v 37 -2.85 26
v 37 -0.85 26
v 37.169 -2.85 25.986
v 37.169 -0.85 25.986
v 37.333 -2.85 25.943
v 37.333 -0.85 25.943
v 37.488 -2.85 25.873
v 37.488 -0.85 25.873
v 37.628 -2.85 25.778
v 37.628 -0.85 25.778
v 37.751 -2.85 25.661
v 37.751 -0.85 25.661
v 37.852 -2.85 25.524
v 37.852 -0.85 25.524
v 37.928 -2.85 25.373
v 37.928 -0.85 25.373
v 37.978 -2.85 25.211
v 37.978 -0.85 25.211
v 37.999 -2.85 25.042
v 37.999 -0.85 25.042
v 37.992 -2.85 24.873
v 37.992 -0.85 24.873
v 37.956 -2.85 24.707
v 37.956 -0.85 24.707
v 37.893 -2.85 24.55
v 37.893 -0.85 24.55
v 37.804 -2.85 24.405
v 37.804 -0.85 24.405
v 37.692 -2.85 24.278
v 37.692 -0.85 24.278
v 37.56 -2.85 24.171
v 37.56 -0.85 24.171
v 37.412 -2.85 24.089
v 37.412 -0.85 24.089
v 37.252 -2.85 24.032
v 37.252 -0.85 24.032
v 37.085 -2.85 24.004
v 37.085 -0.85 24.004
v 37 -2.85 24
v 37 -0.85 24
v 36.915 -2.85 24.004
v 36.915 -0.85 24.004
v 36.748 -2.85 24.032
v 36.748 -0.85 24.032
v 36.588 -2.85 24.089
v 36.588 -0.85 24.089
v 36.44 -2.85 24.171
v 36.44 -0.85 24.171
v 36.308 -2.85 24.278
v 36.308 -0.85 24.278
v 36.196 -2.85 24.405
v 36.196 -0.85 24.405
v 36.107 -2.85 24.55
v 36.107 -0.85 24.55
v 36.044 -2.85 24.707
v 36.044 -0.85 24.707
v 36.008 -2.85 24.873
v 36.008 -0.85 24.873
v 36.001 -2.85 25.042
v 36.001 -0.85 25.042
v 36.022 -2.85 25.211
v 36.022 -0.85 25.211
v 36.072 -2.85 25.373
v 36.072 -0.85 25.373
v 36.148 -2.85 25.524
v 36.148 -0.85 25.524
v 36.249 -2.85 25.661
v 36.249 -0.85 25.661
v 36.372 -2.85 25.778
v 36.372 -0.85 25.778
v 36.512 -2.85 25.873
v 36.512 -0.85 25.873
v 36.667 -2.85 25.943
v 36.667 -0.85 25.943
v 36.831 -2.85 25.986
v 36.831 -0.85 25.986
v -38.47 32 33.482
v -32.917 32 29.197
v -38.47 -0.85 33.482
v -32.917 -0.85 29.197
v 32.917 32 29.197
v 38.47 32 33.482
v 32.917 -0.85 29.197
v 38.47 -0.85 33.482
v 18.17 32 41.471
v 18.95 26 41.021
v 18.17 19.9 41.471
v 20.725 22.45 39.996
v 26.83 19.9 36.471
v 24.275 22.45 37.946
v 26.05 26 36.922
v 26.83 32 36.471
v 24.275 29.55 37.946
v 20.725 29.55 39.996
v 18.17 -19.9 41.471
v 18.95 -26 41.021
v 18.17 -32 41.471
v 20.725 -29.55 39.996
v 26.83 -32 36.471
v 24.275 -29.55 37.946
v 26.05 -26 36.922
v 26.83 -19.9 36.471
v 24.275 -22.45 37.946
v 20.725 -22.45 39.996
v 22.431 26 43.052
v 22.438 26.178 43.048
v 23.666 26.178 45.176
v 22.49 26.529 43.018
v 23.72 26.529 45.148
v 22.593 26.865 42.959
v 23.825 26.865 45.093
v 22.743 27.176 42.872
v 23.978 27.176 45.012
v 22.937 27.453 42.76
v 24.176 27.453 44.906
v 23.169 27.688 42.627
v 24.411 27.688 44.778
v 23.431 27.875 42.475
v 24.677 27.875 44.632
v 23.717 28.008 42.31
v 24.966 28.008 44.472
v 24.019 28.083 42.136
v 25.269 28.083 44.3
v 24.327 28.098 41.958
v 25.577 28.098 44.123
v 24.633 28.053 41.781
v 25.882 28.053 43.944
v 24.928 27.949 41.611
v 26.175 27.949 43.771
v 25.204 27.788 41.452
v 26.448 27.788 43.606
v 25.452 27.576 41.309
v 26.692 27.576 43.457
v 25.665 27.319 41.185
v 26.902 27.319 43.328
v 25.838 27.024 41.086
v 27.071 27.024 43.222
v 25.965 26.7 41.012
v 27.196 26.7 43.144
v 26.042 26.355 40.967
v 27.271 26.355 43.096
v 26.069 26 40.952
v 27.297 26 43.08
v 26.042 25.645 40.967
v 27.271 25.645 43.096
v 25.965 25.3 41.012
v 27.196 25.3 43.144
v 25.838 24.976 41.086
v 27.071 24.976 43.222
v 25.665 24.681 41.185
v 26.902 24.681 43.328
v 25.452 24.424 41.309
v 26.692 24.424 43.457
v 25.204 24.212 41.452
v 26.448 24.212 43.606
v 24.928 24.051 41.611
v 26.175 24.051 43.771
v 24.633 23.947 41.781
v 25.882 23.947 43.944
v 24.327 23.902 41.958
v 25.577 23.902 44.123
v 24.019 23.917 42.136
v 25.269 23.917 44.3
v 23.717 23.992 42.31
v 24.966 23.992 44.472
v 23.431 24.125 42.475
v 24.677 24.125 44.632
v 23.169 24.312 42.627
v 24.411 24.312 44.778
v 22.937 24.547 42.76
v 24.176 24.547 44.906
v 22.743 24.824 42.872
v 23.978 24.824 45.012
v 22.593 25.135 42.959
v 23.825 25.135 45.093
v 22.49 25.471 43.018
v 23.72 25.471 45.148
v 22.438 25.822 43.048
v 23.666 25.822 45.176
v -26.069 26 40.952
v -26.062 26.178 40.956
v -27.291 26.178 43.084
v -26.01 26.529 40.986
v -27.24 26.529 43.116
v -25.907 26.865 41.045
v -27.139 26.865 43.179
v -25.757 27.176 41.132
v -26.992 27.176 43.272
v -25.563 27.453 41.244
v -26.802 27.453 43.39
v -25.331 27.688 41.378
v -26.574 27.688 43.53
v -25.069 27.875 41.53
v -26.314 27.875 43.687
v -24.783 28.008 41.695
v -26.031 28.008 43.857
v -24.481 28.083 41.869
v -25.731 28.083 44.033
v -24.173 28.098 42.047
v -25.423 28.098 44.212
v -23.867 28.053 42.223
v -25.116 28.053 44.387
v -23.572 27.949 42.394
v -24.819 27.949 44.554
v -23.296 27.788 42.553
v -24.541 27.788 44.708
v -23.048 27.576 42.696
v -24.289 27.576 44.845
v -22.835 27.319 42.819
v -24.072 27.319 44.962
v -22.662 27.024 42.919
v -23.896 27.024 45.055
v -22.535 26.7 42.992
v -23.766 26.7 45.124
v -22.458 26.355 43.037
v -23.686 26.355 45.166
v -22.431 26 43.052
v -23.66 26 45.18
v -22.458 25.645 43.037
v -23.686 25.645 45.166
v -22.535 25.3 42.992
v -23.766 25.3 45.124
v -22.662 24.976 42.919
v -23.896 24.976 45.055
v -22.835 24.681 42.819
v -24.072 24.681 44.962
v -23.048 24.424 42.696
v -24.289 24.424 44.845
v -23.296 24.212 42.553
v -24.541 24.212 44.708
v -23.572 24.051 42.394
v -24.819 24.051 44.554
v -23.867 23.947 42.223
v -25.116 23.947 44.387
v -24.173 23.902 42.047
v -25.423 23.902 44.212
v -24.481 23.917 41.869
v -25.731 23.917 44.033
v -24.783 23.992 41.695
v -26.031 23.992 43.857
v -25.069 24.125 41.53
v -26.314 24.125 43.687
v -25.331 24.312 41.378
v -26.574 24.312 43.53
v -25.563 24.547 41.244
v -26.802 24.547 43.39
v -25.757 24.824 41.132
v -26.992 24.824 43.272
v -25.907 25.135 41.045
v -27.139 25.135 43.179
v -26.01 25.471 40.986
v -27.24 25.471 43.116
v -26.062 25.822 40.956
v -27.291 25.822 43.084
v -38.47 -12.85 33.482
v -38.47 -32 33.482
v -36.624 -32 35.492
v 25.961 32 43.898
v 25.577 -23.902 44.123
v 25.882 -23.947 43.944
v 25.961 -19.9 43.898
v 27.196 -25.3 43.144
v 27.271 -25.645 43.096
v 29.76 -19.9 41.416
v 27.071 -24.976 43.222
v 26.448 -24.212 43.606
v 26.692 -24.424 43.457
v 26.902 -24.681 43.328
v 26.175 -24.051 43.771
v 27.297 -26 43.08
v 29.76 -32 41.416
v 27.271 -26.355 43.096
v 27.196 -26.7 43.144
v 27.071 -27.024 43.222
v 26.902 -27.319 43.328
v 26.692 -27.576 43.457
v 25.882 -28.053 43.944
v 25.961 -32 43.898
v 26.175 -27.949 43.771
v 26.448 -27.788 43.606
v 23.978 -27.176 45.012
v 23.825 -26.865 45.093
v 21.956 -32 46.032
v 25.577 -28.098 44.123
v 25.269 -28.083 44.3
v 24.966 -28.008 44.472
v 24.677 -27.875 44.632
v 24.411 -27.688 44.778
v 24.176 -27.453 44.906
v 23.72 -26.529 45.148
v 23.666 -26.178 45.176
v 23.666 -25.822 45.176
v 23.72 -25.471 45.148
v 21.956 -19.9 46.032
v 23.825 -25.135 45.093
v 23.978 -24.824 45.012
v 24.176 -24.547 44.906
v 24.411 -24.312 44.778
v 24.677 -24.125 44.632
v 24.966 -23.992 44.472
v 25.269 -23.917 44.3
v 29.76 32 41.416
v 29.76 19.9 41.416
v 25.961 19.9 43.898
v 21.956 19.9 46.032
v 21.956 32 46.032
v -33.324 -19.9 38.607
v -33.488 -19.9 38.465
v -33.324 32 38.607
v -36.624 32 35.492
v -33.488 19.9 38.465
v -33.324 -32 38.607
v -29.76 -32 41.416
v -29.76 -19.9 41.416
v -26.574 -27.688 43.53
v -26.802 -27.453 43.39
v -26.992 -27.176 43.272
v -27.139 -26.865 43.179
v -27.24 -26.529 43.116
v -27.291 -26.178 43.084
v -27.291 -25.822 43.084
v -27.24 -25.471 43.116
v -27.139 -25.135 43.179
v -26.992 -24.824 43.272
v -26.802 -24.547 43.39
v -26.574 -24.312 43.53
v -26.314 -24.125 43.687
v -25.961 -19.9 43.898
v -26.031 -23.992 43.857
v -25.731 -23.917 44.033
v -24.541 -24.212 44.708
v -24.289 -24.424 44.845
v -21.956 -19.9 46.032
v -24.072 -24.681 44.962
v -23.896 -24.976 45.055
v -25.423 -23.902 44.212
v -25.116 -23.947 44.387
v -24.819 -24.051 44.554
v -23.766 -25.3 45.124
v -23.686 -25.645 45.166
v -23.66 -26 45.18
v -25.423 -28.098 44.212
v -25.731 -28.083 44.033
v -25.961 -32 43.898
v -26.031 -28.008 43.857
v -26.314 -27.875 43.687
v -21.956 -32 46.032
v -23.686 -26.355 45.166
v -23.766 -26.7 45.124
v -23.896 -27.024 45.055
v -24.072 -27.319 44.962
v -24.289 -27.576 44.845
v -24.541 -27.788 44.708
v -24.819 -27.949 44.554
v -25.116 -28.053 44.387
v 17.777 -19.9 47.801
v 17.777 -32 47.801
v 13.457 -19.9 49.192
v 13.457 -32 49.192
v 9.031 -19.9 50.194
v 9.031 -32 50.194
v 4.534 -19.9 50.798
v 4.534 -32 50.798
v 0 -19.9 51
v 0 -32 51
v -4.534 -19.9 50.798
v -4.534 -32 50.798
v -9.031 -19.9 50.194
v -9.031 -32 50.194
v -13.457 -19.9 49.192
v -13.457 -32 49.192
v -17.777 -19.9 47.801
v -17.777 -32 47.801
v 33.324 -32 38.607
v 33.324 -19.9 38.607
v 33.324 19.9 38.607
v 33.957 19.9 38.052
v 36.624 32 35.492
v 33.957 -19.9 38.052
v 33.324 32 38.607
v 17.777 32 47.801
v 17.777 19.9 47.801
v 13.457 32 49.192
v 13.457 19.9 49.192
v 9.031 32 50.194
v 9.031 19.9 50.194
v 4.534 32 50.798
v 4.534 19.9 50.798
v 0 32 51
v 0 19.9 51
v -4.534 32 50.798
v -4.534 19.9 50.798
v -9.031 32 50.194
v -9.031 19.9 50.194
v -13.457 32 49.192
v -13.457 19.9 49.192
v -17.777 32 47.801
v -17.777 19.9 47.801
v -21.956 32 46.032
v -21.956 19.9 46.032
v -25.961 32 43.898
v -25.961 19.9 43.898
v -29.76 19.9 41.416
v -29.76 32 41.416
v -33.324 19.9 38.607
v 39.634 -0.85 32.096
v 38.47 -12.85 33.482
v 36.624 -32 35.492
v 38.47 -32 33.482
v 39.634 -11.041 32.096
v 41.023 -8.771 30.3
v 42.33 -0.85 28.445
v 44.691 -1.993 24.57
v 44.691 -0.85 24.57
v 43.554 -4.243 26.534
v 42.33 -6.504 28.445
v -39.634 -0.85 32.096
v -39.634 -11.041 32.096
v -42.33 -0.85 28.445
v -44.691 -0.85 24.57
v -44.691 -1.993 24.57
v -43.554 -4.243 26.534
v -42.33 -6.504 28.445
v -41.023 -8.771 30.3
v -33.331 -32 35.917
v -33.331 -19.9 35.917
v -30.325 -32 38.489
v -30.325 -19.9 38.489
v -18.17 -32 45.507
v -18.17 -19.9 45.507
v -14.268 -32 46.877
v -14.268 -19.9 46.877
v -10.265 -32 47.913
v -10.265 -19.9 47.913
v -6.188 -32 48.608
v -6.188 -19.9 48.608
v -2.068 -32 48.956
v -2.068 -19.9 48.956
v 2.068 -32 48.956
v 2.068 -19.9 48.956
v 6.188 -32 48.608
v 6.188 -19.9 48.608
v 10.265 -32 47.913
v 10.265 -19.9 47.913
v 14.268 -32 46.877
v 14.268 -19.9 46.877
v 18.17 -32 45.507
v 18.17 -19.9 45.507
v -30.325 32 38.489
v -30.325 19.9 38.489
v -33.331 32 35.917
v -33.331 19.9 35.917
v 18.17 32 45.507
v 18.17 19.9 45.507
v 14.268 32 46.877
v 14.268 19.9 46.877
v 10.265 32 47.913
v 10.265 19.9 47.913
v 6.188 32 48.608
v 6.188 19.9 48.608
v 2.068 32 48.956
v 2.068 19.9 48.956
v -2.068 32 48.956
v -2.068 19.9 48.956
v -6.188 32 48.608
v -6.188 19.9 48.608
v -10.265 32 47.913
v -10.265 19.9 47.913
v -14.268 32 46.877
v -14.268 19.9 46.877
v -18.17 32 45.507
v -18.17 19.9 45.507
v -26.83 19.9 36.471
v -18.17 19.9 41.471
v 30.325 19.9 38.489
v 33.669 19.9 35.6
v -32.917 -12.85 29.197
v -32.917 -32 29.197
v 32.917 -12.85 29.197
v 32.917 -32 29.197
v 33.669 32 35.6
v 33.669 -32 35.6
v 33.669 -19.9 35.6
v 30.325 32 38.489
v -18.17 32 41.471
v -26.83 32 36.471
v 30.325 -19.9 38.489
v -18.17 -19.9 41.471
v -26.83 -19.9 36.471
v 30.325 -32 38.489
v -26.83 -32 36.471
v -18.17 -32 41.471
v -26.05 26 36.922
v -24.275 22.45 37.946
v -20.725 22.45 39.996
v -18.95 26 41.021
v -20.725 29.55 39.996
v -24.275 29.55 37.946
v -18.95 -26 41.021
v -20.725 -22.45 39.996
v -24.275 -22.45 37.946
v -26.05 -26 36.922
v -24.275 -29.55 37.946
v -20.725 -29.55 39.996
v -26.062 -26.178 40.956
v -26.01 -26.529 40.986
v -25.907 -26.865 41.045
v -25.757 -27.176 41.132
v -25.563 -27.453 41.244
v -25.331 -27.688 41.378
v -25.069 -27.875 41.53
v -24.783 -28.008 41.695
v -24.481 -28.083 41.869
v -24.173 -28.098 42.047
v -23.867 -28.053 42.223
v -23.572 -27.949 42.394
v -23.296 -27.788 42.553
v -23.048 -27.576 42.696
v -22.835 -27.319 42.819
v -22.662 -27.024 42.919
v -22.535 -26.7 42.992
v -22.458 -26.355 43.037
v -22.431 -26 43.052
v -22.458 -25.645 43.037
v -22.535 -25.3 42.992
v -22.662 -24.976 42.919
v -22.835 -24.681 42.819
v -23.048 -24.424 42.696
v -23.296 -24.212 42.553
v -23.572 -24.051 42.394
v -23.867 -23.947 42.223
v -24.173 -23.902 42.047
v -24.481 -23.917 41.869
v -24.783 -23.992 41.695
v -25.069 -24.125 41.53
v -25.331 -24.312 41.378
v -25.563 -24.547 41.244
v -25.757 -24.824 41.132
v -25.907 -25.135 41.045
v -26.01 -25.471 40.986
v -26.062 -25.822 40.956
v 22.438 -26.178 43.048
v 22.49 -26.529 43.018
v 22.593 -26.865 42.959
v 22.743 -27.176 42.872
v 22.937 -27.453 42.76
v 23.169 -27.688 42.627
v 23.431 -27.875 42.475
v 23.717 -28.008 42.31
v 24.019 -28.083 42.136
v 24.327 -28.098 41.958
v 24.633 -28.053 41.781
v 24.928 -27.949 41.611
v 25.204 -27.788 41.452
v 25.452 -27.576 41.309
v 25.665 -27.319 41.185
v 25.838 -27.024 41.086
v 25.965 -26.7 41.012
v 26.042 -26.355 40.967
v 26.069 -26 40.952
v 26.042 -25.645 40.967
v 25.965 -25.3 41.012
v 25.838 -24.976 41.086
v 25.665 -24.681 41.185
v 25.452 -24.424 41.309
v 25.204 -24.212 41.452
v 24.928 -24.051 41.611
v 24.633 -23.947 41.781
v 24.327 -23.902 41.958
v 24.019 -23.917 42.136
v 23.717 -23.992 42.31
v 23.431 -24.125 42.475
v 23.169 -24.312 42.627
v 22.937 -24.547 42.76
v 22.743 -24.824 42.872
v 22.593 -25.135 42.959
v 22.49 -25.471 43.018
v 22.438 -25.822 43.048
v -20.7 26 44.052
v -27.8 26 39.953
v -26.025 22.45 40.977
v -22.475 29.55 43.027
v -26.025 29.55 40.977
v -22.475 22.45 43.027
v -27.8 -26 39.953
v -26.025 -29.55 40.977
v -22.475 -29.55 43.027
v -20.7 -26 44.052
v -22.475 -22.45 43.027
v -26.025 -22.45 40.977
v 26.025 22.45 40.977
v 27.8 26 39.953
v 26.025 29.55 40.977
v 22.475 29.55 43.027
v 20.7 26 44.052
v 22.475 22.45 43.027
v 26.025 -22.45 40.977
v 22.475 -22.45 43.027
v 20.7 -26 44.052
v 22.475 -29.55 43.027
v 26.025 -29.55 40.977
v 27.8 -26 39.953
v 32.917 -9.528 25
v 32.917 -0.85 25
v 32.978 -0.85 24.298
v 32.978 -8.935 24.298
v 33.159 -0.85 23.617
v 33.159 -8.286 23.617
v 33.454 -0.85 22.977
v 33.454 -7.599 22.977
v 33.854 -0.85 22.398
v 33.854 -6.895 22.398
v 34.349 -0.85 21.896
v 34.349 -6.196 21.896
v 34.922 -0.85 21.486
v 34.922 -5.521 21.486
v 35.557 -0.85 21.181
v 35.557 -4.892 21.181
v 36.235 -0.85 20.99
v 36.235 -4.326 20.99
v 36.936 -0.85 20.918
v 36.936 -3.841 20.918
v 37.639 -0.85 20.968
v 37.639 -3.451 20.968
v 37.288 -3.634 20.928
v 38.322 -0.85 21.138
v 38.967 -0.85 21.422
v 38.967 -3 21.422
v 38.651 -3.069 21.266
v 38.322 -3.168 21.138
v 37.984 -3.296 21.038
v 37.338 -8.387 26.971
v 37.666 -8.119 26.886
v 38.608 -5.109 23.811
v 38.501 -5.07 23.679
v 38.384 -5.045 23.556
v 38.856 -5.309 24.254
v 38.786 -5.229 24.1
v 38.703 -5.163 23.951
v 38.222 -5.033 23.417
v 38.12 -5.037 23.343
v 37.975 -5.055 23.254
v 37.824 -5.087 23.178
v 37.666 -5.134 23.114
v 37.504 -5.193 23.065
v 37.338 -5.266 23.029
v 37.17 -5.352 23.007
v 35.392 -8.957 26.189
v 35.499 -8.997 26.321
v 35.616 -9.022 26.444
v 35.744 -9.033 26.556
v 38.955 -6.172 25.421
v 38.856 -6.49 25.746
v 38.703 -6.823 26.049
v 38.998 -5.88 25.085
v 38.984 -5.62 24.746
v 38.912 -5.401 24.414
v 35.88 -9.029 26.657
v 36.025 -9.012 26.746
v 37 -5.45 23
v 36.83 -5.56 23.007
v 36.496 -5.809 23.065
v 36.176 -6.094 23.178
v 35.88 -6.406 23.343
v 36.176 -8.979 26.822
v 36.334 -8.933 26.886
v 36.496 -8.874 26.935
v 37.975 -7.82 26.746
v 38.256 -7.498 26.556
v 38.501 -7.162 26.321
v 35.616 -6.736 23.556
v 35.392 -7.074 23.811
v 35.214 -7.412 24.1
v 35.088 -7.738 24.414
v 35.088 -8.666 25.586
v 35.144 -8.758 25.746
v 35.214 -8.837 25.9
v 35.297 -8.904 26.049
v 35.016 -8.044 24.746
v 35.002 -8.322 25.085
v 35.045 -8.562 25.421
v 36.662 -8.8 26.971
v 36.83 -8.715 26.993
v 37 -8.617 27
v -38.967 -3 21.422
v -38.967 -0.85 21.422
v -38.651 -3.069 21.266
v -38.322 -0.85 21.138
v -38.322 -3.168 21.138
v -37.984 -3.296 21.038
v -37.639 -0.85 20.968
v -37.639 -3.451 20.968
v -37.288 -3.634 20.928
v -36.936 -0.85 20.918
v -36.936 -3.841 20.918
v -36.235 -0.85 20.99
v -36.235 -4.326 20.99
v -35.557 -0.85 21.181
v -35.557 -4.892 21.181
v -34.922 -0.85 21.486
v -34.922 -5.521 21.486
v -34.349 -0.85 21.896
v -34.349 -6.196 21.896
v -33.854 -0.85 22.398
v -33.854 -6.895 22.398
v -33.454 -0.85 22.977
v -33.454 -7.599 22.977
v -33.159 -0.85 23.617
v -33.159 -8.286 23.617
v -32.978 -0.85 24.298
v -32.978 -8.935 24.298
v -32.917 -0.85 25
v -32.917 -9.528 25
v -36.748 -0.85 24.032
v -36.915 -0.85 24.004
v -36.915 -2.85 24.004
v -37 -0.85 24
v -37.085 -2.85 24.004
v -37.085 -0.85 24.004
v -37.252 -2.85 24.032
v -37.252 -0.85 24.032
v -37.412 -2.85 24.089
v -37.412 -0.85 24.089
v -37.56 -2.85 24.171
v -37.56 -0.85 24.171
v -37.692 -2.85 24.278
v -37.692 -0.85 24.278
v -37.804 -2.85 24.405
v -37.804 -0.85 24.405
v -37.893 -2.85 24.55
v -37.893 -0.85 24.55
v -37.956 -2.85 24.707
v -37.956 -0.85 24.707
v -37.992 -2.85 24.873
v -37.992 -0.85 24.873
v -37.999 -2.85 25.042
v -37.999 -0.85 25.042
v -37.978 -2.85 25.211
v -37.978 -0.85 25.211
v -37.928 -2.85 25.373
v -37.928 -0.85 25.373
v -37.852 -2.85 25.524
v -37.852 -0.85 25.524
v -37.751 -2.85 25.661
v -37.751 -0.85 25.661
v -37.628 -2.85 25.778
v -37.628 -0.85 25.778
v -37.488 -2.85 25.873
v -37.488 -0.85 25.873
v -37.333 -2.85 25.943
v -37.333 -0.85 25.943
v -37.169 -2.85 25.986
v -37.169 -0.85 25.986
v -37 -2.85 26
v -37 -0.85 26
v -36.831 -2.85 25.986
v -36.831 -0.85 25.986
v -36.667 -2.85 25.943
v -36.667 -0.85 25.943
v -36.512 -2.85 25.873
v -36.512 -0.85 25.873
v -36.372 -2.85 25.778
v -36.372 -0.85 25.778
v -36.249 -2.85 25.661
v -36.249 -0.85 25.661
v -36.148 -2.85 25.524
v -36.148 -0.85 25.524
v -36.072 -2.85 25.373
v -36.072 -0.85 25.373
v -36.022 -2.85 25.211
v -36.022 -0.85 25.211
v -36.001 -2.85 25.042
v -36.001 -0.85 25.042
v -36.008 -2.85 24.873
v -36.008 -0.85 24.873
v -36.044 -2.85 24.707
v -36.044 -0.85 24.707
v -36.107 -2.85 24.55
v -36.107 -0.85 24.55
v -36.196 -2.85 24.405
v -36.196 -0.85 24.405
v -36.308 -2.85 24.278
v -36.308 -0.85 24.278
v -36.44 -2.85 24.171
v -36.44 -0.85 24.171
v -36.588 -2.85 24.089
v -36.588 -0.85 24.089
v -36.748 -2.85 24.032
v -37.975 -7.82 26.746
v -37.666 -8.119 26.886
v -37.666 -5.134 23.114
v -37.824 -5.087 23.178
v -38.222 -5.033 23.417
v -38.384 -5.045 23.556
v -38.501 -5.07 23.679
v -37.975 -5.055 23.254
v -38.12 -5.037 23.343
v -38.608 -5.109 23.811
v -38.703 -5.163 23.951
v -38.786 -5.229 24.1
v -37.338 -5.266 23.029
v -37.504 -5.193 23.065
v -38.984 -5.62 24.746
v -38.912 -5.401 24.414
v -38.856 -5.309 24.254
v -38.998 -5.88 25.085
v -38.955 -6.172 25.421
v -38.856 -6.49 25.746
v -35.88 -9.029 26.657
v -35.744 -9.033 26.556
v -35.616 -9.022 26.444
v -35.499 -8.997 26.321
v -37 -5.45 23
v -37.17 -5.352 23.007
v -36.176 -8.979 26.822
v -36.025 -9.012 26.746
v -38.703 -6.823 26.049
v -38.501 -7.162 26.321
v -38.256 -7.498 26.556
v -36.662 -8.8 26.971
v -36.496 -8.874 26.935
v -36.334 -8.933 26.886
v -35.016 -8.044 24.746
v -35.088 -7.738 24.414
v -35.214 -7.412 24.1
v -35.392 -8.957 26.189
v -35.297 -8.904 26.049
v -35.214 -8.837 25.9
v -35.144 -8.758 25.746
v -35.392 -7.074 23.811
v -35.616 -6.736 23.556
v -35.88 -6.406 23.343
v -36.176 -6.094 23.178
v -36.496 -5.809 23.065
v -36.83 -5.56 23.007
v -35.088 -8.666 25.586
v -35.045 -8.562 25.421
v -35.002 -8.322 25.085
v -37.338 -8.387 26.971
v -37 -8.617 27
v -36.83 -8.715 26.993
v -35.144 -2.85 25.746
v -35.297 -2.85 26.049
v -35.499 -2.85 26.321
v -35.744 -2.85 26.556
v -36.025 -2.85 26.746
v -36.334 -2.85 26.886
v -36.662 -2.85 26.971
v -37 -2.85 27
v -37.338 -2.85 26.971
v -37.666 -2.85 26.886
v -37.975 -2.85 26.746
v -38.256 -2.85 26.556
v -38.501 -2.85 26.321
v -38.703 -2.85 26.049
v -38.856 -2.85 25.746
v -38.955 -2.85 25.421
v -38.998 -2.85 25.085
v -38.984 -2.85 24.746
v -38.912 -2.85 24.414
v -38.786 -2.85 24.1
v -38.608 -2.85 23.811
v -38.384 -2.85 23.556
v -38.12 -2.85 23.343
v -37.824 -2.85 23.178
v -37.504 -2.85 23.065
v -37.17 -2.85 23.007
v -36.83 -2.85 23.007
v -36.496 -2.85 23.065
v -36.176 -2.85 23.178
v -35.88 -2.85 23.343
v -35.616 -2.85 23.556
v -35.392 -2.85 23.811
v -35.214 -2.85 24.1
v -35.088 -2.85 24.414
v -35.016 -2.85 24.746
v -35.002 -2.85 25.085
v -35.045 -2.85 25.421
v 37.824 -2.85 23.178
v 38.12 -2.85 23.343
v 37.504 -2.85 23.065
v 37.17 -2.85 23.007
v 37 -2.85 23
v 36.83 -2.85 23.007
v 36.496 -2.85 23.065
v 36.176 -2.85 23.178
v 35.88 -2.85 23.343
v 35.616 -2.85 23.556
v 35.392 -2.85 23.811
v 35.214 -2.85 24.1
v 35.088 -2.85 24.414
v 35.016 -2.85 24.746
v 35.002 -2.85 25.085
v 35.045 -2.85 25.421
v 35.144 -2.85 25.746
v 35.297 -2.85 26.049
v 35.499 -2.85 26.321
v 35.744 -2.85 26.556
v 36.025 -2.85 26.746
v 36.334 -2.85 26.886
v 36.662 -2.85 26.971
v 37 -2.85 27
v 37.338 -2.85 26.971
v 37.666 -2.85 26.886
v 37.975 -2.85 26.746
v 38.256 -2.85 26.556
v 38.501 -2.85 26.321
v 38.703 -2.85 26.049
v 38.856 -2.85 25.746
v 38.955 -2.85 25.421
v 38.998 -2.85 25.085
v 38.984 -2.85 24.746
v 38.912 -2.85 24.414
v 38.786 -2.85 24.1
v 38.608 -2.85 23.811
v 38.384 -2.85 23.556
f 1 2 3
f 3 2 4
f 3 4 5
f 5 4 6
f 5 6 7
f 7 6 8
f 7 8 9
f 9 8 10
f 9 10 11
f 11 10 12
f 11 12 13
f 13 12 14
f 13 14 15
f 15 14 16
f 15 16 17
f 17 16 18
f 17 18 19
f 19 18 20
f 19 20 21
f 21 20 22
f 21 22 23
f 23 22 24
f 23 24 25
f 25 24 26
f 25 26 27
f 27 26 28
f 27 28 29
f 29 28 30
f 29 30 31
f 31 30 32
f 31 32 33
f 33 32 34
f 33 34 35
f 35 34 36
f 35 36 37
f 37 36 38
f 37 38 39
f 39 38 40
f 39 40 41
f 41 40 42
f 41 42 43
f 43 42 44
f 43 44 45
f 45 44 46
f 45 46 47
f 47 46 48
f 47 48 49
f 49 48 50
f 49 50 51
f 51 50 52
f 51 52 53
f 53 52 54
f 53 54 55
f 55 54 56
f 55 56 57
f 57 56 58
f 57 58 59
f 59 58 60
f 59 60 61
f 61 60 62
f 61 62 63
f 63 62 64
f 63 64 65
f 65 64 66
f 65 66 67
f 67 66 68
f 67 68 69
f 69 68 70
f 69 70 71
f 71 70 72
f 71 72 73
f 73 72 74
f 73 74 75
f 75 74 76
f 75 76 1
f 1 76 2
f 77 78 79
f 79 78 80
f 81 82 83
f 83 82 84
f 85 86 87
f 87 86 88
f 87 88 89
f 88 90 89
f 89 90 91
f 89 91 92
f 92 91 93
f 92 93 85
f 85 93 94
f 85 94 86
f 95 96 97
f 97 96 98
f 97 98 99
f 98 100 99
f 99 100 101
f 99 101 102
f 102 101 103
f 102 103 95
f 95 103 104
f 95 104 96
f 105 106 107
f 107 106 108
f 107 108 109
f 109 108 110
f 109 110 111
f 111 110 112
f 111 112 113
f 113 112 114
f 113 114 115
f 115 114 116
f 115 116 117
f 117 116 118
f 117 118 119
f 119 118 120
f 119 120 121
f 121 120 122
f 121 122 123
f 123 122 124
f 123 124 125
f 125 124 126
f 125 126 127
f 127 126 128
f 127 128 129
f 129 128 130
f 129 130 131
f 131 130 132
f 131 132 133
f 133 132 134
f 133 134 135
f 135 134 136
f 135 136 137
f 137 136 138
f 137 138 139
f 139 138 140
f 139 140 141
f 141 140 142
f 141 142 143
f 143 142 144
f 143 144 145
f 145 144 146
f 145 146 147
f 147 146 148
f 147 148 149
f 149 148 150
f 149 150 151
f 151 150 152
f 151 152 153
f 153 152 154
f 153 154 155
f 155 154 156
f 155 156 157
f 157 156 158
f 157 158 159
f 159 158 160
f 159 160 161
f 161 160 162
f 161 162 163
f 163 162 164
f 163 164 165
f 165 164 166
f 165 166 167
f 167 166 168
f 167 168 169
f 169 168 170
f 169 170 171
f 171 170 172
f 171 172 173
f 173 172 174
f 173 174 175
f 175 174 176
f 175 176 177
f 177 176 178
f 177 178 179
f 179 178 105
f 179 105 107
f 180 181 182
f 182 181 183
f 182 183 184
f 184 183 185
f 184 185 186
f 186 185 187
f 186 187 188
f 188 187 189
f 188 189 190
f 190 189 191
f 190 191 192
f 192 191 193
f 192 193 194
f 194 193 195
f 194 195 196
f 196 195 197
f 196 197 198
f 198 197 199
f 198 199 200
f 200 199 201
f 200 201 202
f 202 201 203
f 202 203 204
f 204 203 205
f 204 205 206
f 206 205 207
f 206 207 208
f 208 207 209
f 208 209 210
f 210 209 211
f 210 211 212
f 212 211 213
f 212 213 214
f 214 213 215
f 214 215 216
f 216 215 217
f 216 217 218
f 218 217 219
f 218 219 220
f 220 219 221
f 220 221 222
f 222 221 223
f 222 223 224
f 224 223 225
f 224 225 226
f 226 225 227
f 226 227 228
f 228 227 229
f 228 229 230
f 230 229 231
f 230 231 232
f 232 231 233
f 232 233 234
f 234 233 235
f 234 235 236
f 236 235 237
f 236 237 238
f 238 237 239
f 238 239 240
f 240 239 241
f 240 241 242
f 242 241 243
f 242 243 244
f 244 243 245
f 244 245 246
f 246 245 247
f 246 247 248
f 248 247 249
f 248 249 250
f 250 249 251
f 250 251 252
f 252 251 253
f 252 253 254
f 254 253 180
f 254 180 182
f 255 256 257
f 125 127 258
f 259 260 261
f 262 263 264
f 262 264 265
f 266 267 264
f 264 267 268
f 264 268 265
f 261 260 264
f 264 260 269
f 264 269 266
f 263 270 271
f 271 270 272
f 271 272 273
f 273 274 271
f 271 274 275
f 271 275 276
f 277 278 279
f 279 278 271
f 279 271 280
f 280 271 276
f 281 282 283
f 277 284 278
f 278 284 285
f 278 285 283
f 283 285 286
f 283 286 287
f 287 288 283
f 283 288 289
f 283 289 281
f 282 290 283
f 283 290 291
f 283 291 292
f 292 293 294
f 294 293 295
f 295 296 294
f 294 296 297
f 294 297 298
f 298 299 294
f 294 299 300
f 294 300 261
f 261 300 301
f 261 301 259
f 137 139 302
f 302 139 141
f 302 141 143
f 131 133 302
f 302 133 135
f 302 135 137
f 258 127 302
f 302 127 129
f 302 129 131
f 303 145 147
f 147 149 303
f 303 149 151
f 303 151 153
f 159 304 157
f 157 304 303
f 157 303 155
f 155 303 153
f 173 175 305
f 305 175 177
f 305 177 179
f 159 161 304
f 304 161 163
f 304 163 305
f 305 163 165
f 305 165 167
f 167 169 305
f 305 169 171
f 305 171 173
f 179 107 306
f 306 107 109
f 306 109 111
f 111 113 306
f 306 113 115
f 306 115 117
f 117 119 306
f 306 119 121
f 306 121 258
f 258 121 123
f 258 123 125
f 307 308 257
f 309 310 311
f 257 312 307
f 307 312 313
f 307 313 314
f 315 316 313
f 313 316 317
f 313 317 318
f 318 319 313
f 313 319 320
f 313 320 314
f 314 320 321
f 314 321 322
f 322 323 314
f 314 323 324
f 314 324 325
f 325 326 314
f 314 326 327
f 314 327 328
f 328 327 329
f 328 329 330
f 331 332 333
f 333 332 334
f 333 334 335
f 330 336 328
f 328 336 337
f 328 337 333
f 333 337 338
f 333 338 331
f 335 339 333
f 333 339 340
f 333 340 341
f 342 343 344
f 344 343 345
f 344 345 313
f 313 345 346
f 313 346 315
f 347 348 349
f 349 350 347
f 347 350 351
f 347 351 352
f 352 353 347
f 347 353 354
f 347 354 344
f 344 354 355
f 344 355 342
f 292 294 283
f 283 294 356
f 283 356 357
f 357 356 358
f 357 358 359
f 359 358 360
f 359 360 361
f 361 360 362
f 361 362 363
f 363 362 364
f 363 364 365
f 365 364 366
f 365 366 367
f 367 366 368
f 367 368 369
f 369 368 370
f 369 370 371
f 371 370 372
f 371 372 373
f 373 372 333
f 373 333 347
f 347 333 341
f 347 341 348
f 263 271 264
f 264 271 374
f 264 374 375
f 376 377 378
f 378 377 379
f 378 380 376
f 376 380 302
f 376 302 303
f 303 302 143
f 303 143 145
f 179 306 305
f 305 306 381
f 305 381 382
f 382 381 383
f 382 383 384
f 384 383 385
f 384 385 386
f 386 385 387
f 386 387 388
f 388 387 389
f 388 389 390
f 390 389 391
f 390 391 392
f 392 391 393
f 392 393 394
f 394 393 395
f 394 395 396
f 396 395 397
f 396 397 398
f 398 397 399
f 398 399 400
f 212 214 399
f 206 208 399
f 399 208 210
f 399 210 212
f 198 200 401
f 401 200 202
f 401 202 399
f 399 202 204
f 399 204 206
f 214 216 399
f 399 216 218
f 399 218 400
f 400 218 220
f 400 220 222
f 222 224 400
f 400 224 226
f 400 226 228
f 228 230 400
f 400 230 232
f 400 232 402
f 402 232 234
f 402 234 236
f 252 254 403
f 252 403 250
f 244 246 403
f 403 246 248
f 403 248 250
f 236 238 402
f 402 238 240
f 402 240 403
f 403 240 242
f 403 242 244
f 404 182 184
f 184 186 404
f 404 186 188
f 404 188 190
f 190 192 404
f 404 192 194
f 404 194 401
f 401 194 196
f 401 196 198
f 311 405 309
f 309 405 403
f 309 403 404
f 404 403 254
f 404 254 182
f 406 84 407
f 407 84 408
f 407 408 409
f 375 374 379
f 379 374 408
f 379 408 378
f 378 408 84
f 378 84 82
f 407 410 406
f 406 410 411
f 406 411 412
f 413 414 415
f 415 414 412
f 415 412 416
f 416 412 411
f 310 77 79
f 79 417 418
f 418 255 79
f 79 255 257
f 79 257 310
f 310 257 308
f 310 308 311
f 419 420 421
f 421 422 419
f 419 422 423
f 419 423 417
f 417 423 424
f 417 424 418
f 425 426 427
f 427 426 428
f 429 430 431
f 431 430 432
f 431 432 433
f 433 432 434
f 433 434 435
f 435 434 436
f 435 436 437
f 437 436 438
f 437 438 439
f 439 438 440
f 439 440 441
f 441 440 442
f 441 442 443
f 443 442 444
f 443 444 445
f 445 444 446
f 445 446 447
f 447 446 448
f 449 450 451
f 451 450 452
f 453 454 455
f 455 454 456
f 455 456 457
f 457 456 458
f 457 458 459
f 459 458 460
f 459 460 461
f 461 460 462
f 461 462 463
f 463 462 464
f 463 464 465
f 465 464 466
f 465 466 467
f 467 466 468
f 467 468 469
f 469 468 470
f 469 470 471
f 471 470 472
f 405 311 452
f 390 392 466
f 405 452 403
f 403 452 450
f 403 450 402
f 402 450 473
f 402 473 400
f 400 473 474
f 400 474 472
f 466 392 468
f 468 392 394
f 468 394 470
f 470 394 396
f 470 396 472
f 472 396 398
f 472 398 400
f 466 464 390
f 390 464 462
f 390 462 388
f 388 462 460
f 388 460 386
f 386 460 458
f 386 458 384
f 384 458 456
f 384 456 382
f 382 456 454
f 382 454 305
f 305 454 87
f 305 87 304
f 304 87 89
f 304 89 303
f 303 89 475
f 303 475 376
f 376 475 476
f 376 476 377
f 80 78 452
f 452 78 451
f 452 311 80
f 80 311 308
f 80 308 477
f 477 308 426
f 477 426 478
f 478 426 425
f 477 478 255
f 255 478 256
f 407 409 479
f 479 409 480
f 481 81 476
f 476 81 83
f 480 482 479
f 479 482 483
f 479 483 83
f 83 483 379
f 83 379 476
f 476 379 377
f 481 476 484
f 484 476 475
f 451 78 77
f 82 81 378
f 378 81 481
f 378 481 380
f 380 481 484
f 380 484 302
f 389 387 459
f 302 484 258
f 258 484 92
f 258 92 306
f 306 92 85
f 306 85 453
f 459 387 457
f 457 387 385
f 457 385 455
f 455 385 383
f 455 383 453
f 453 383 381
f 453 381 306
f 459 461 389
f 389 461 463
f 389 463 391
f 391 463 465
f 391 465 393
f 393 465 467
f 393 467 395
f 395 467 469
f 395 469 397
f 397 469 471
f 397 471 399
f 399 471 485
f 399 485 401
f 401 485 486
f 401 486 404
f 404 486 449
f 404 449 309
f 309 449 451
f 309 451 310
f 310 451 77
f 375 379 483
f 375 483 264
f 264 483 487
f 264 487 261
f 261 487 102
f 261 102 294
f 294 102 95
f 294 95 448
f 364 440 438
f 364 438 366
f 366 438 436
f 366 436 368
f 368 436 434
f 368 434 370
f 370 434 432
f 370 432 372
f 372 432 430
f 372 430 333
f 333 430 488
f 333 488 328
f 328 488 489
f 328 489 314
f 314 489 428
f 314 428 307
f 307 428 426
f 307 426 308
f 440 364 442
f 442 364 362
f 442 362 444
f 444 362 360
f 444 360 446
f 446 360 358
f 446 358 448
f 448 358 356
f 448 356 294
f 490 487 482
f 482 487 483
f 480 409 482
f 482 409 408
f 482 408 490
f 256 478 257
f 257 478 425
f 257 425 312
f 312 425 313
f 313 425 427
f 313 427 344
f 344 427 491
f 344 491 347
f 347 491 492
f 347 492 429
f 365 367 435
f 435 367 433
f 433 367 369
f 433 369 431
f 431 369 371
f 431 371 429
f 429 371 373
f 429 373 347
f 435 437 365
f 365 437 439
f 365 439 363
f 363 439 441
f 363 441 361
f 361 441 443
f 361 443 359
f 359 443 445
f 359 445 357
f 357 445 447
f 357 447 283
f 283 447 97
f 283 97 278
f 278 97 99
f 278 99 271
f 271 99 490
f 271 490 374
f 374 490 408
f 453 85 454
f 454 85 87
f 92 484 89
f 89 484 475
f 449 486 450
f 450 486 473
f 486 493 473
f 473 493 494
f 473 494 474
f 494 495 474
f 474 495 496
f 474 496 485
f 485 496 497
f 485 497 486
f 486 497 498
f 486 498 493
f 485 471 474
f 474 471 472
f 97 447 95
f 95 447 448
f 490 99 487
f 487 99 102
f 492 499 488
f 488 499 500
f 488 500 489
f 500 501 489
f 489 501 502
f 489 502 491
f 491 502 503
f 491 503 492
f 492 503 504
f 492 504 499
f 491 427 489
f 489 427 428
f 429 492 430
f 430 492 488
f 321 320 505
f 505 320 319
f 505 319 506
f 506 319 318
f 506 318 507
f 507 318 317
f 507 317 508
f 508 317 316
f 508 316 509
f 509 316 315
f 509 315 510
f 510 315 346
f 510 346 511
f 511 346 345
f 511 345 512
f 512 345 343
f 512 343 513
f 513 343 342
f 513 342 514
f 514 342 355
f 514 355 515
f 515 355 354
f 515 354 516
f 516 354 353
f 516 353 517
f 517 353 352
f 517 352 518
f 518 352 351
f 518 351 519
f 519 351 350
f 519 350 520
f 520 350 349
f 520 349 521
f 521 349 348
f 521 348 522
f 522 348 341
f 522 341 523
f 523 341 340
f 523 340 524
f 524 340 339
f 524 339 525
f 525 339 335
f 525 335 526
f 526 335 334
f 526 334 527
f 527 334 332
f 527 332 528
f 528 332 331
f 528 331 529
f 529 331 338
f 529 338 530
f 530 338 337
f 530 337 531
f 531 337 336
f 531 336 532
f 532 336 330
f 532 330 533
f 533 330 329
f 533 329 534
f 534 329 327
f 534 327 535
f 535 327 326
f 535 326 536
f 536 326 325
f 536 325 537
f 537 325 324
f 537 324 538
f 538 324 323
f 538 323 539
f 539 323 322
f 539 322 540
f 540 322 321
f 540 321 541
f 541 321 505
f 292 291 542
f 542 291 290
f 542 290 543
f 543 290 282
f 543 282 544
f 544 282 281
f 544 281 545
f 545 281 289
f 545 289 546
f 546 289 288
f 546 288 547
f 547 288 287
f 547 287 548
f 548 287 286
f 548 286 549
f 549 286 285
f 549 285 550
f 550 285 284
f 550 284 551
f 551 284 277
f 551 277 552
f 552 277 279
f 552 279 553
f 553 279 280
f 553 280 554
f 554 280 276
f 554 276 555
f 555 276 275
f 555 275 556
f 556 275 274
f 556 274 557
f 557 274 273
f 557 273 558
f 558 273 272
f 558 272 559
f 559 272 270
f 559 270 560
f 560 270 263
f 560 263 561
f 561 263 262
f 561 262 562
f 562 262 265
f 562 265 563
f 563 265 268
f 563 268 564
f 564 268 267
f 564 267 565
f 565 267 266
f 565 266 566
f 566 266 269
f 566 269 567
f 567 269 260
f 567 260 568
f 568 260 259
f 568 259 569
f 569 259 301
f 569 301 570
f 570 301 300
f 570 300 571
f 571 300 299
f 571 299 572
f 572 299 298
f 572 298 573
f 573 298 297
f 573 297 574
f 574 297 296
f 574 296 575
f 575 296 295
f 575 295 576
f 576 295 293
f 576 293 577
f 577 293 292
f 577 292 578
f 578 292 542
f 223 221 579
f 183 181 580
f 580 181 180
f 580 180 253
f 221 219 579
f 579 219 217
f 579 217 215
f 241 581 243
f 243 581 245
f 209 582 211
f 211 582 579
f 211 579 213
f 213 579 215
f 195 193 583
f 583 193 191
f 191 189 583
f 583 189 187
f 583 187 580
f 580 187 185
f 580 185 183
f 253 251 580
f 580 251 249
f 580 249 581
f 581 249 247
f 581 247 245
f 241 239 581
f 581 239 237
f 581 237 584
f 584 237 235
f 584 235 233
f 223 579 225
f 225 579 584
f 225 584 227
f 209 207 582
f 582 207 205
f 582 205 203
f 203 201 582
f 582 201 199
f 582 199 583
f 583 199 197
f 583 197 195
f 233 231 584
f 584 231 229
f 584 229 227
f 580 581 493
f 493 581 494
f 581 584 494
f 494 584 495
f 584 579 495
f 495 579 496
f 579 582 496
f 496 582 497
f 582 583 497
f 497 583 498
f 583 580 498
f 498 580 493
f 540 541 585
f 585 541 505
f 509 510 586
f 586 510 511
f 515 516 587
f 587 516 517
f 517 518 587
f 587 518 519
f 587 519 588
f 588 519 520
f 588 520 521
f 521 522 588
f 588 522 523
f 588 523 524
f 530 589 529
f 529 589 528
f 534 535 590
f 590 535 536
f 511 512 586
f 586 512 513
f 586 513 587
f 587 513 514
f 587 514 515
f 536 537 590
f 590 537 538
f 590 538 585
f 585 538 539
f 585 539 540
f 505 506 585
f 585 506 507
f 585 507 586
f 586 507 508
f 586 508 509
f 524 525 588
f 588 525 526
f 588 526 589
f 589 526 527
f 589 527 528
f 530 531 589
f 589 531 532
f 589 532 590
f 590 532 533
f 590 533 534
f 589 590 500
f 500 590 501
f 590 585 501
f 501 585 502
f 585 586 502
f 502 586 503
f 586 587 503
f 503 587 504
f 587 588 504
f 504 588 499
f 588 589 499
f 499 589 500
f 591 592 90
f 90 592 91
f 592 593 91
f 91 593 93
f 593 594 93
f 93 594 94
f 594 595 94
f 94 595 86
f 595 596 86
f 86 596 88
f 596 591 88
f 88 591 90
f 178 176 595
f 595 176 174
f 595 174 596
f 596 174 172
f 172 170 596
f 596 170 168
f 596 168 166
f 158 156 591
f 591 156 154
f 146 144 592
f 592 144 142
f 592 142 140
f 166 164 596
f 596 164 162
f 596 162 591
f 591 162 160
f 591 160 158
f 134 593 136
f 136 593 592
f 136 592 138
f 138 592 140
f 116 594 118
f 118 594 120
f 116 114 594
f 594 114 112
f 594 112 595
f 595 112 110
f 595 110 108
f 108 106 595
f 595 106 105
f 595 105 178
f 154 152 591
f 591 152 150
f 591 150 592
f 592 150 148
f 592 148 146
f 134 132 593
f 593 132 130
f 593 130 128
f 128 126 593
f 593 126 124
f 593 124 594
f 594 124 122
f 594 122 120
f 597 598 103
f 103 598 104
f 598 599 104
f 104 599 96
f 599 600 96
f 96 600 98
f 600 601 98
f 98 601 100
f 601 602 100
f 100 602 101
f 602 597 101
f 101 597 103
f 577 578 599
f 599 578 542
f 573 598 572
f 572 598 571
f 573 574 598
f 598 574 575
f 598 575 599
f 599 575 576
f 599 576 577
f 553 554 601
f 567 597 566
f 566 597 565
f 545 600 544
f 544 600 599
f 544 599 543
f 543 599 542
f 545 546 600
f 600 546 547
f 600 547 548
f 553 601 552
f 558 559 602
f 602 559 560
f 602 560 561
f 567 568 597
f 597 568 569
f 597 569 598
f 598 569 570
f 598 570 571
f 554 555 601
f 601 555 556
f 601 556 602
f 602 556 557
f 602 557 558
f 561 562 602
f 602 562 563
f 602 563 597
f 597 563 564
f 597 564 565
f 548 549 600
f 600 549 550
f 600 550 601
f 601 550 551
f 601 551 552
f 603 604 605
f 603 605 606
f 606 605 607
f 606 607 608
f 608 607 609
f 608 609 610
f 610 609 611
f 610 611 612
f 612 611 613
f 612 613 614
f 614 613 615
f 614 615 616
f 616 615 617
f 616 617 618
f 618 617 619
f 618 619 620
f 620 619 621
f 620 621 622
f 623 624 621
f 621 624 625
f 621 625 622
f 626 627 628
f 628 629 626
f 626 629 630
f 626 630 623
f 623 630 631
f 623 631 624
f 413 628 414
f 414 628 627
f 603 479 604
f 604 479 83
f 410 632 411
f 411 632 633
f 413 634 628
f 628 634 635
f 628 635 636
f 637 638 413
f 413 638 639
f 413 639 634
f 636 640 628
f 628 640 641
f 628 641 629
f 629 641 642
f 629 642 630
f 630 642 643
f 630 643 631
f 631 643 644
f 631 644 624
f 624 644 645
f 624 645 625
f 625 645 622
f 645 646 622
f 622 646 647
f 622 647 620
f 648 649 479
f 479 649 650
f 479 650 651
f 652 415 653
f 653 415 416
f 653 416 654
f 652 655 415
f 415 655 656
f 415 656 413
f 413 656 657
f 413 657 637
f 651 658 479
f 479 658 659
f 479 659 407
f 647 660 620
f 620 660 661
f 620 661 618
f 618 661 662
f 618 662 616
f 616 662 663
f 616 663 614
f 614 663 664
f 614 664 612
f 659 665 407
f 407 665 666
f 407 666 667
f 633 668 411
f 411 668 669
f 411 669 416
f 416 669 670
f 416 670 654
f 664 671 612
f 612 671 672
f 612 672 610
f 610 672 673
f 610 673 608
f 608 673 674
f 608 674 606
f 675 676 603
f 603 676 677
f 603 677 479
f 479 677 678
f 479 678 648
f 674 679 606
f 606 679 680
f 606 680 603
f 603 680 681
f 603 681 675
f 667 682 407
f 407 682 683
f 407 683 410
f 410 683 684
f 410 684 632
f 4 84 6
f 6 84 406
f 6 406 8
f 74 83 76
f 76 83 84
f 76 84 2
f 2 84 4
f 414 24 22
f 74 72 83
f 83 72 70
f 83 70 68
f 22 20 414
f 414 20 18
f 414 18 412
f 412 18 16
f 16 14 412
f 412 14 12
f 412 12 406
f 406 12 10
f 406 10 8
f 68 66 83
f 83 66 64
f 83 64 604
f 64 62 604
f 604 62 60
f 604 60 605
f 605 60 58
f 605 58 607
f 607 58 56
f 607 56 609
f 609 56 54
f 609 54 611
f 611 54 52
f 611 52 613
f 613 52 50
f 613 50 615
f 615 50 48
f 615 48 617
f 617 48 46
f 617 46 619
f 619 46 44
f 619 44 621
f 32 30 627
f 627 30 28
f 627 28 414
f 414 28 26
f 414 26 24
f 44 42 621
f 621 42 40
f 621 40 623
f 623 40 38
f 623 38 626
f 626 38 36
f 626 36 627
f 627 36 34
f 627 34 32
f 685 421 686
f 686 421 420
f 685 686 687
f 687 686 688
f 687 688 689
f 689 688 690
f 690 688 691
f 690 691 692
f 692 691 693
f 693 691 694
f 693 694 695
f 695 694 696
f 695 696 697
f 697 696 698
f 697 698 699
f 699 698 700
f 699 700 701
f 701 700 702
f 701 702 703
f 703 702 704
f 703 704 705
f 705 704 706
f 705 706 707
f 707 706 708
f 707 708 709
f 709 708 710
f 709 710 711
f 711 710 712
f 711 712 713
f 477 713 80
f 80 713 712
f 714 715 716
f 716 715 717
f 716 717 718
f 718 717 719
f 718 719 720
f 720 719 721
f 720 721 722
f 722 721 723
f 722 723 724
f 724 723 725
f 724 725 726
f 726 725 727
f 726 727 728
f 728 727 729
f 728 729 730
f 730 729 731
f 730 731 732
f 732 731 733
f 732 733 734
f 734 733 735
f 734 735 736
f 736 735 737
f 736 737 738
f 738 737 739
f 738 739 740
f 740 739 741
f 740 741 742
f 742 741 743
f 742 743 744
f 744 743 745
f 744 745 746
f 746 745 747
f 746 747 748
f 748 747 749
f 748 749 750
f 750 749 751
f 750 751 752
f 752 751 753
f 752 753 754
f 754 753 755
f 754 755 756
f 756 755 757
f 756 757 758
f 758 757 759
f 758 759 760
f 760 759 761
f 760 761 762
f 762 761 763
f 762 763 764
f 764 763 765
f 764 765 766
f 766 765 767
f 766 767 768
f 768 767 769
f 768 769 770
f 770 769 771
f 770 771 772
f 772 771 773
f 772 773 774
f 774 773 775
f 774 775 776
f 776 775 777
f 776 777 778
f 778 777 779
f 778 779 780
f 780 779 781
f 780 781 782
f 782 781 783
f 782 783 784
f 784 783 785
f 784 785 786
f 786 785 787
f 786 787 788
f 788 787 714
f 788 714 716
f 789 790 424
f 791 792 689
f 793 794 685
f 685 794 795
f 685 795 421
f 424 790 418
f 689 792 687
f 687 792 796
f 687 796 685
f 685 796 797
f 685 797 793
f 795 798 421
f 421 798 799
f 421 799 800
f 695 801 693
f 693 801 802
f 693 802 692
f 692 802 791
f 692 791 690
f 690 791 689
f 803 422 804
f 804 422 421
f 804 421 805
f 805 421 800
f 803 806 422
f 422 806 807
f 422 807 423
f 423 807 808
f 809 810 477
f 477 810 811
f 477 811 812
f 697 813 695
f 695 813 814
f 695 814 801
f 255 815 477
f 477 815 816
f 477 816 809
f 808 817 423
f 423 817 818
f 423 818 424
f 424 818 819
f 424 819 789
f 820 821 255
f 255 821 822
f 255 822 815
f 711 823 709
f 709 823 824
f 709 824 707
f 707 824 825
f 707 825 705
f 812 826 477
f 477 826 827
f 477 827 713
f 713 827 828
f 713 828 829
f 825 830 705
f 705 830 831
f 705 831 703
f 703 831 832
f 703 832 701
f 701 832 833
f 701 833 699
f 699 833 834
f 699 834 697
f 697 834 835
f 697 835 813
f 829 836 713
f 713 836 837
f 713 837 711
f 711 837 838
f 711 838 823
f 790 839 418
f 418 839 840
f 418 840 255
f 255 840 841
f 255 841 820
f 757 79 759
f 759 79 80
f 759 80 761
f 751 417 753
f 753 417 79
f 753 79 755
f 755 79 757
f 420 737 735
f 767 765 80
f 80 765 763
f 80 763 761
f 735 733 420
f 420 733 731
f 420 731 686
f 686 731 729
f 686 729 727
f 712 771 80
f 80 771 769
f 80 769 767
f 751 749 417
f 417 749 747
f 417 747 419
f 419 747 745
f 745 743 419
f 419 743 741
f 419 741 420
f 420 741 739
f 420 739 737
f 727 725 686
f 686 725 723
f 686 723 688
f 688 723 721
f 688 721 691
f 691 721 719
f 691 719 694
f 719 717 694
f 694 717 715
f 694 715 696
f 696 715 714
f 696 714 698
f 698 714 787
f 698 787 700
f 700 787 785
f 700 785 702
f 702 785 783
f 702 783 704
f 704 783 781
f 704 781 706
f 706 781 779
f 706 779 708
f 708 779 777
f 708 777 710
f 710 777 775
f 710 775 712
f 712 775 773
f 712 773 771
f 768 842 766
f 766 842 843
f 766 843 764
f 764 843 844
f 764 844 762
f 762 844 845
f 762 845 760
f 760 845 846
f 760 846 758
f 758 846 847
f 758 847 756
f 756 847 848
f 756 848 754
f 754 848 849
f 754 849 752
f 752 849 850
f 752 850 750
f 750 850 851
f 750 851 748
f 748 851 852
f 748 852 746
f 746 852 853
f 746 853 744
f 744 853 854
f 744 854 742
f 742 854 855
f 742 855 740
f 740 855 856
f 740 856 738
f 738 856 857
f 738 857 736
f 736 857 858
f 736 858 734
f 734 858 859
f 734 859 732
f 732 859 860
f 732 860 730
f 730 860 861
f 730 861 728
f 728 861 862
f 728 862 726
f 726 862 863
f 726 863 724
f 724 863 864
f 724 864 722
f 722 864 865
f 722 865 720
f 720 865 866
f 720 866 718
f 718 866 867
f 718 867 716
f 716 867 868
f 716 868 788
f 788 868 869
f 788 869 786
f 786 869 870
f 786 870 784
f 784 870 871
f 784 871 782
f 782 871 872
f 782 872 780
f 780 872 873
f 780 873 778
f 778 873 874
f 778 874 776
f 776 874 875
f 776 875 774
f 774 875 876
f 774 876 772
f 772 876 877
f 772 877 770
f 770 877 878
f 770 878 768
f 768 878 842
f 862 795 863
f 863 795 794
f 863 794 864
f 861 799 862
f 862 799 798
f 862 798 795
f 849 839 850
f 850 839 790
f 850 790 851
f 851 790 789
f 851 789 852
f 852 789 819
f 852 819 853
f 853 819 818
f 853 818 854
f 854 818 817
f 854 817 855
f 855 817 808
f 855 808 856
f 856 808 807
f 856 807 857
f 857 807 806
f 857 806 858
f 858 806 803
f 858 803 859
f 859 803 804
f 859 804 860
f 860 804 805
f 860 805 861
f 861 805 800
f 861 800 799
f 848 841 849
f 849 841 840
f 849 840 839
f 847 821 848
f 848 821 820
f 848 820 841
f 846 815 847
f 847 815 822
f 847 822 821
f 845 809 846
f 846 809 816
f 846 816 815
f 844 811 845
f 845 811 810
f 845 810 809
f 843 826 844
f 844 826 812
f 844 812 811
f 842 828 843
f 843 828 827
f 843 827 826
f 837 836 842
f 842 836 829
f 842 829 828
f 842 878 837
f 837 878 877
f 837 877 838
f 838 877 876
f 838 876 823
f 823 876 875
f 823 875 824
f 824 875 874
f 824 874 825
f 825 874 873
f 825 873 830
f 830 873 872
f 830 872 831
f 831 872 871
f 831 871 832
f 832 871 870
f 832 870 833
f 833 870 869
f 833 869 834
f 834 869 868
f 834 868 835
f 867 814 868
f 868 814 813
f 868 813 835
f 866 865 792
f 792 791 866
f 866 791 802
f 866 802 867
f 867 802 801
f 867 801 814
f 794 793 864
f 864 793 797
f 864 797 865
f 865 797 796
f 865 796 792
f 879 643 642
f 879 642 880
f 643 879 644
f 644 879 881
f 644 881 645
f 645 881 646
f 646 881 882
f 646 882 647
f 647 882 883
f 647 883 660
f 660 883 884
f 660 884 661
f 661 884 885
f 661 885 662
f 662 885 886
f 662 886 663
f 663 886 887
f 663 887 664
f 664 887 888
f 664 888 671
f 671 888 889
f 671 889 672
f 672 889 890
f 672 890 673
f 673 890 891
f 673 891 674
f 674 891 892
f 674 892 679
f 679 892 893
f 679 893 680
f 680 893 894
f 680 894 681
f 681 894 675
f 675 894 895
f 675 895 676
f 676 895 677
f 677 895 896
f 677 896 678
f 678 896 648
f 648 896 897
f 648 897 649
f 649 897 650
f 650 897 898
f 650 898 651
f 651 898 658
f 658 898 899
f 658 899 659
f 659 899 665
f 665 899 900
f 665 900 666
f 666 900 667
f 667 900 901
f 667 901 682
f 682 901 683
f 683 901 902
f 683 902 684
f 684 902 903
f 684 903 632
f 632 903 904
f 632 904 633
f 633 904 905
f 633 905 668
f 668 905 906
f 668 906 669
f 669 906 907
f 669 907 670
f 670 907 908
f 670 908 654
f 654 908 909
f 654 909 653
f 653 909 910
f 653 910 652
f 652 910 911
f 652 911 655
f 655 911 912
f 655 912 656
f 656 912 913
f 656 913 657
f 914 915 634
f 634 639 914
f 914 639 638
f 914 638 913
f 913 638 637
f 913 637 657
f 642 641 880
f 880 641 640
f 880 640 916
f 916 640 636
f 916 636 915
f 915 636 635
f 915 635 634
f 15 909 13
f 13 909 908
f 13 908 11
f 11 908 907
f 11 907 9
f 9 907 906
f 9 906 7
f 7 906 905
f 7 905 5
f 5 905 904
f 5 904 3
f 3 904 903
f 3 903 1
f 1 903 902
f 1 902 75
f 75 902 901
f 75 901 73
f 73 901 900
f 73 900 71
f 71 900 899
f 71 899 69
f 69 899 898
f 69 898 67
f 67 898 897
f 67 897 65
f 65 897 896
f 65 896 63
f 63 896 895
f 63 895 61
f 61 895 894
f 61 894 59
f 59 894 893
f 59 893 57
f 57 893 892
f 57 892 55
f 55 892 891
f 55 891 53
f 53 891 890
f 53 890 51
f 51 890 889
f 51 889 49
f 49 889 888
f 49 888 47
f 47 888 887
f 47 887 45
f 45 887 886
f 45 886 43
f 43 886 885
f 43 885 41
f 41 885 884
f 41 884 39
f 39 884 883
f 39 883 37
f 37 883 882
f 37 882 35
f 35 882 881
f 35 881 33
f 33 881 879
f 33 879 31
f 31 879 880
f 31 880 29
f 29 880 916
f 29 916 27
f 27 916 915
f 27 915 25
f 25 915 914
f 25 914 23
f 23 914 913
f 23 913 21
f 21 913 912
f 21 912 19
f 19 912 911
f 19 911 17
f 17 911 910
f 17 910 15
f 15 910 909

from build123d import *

# Parameters (mm, degrees)
EXTRUDE_1_DEPTH        = 19.9
EXTRUDE_1_DEPTH_BACK   = 19.9
EXTRUDE_1_2_DEPTH      = 19.9
EXTRUDE_1_2_DEPTH_BACK = 19.9
EXTRUDE_2_DEPTH        = 12.1
EXTRUDE_4_DEPTH        = 12.1
EXTRUDE_5_DEPTH        = 12.1
SKETCH_4_R             = 2.1
CUT_EXTRUDE_1_DEPTH    = 74.077252942
CUT_EXTRUDE_2_DEPTH    = 3.5
SKETCH_9_R             = 1
EXTRUDE_6_DEPTH        = 12
DRAFT_START            = -52
DRAFT_3_DEPTH          = 11.517207928
DRAFT_START_2          = 40.482792072
DRAFT_5_DEPTH          = 11.517207928
SKETCH_10_R            = 2
CUT_EXTRUDE_3_DEPTH    = 77.242064239


with BuildPart() as part:
    # Эскиз1 → Бобышка-Вытянуть1 (new, two sides: drawn at the far end of the back side and taken through both)
    with BuildSketch(Plane(origin=(0, 0, 0), x_dir=(1, 0, 0), z_dir=(0, 1, 0)).offset(-EXTRUDE_1_DEPTH_BACK)):
        with BuildLine():
            Line((38.470009909, -33.482209271), (32.917480236, -29.196566492))
            Line((32.917480236, -29.196566492), (33.95705193, -38.051525912))
            ThreePointArc((33.95705193, -38.051525912), (36.285527215, -35.837975874), (38.470009909, -33.482209271))
        make_face()
    extrude(amount=EXTRUDE_1_DEPTH + EXTRUDE_1_DEPTH_BACK)



with BuildPart() as body_2:
    # Эскиз1 → Extrude 1 2 (new, two sides: drawn at the far end of the back side and taken through both)
    with BuildSketch(Plane(origin=(0, 0, 0), x_dir=(1, 0, 0), z_dir=(0, 1, 0)).offset(-EXTRUDE_1_2_DEPTH_BACK)):
        with BuildLine():
            Line((-32.917480236, -29.196566492), (-38.470009909, -33.482209271))
            ThreePointArc((-38.470009909, -33.482209271), (-36.064957562, -36.059933944), (-33.487567945, -38.465345353))
            Line((-33.487567945, -38.465345353), (-32.917480236, -29.196566492))
        make_face()
    extrude(amount=EXTRUDE_1_2_DEPTH + EXTRUDE_1_2_DEPTH_BACK)


with BuildPart() as part_1:
    add(part.part)

    add(body_2.part)  # Бобышка-Вытянуть2 merges body 2
    # Эскиз2 → Бобышка-Вытянуть2 (add)
    with BuildSketch(Plane(origin=(0, 19.9, 0), x_dir=(1, 0, 0), z_dir=(0, 1, 0))):
        with BuildLine():
            Line((-32.917480236, -29.196566492), (-38.470009909, -33.482209271))
            ThreePointArc((-38.470009909, -33.482209271), (-36.064957562, -36.059933944), (-33.487567945, -38.465345353))
            ThreePointArc((-33.487567945, -38.465345353), (0.312914422, -50.999040036), (33.95705193, -38.051525912))
            ThreePointArc((33.95705193, -38.051525912), (36.285527215, -35.837975874), (38.470009909, -33.482209271))
            Line((38.470009909, -33.482209271), (32.917480236, -29.196566492))
            Line((32.917480236, -29.196566492), (33.669275707, -35.60027912))
            ThreePointArc((33.669275707, -35.60027912), (0.231869073, -48.999451392), (-33.33084903, -35.917328727))
            Line((-33.33084903, -35.917328727), (-32.917480236, -29.196566492))
        make_face()
    extrude_2 = extrude(amount=EXTRUDE_2_DEPTH)

    # Зеркальное отражение4: Бобышка-Вытянуть2 across plane
    add(extrude_2.mirror(Plane.ZX))

    # Эскиз5 → Бобышка-Вытянуть4 (add)
    with BuildSketch(Plane(origin=(0, 32, 0), x_dir=(1, 0, 0), z_dir=(0, 1, 0))):
        with BuildLine():
            Line((-18.169872981, -41.47114317), (-26.830127019, -36.47114317))
            Line((-26.830127019, -36.47114317), (-30.324983414, -38.488899451))
            ThreePointArc((-30.324983414, -38.488899451), (-24.5, -42.435244785), (-18.169872981, -45.506655731))
            Line((-18.169872981, -45.506655731), (-18.169872981, -41.47114317))
        make_face()
        with BuildLine():
            Line((26.830127019, -36.47114317), (30.324983414, -38.488899451))
            ThreePointArc((30.324983414, -38.488899451), (24.5, -42.435244785), (18.169872981, -45.506655731))
            Line((18.169872981, -45.506655731), (18.169872981, -41.47114317))
            Line((18.169872981, -41.47114317), (26.830127019, -36.47114317))
        make_face()
    extrude(amount=-EXTRUDE_4_DEPTH)

    # Эскиз6 → Бобышка-Вытянуть5 (add)
    with BuildSketch(Plane.XZ.offset(32)):
        with BuildLine():
            Line((18.169872981, 41.47114317), (18.169872981, 45.506655731))
            ThreePointArc((18.169872981, 45.506655731), (24.5, 42.435244785), (30.324983414, 38.488899451))
            Line((30.324983414, 38.488899451), (26.830127019, 36.47114317))
            Line((26.830127019, 36.47114317), (18.169872981, 41.47114317))
        make_face()
        with BuildLine():
            Line((-26.830127019, 36.47114317), (-30.324983414, 38.488899451))
            ThreePointArc((-30.324983414, 38.488899451), (-24.5, 42.435244785), (-18.169872981, 45.506655731))
            Line((-18.169872981, 45.506655731), (-18.169872981, 41.47114317))
            Line((-18.169872981, 41.47114317), (-26.830127019, 36.47114317))
        make_face()
    extrude(amount=-EXTRUDE_5_DEPTH)

    # Эскиз4 → Вырез-Вытянуть1 (cut, through all)
    with BuildSketch(Plane(origin=(-25.5, 0, 44.167295593), x_dir=(0.8660254037844417, 0, 0.4999999999999947), z_dir=(-0.4999999999999947, 0, 0.8660254037844417))):
        with Locations((0, -26)):
            Circle(SKETCH_4_R)
        with Locations((0, 26)):
            Circle(SKETCH_4_R)
    cut_extrude_1 = extrude(amount=-CUT_EXTRUDE_1_DEPTH, mode=Mode.SUBTRACT)

    # Зеркальное отражение5: Вырез-Вытянуть1 across plane
    add(cut_extrude_1.mirror(Plane(origin=(0, 0, 0), x_dir=(0, 0, 1), z_dir=(1, 0, 0))), mode=Mode.SUBTRACT)

    # Эскиз7 → Вырез-Вытянуть2 (cut)
    with BuildSketch(Plane(origin=(-22.5, 0, 38.97114317), x_dir=(-0.866025403784438, 0, -0.5000000000000011), z_dir=(0.5000000000000011, 0, -0.8660254037844382))):
        Polygon((4.099186911, 26), (2.049593456, 29.55), (-2.049593456, 29.55), (-4.099186911, 26), (-2.049593456, 22.45), (2.049593456, 22.45), align=None)
        Polygon((2.049593456, -22.45), (4.099186911, -26), (2.049593456, -29.55), (-2.049593456, -29.55), (-4.099186911, -26), (-2.049593456, -22.45), align=None)
    cut_extrude_2 = extrude(amount=-CUT_EXTRUDE_2_DEPTH, mode=Mode.SUBTRACT)

    # Зеркальное отражение7: Вырез-Вытянуть2 across plane
    add(cut_extrude_2.mirror(Plane(origin=(0, 0, 0), x_dir=(0, 0, 1), z_dir=(1, 0, 0))), mode=Mode.SUBTRACT)

    # Эскиз9 → Бобышка-Вытянуть6 (add)
    # profile 1 of 2: a face of its own
    with BuildSketch(Plane(origin=(0, -0.85, 0), x_dir=(-1, 0, 0), z_dir=(0, -1, 0))):
        with BuildLine():
            ThreePointArc((-44.691496308, -24.569699993), (-41.818862185, -29.192169593), (-38.470009909, -33.482209271))
            Line((-38.470009909, -33.482209271), (-32.917480236, -29.196566492))
            Line((-32.917480236, -29.196566492), (-32.917480236, -25))
            ThreePointArc((-32.917480236, -25), (-34.921838684, -21.485997557), (-38.966789918, -21.422472216))
            Line((-38.966789918, -21.422472216), (-44.691496308, -24.569699993))
        make_face()
        with Locations(Location((-37, -25, 0), (0, 0, 90))):
            Circle(SKETCH_9_R, mode=Mode.SUBTRACT)
    # profile 2 of 2: a face of its own
    with BuildSketch(Plane(origin=(0, -0.85, 0), x_dir=(-1, 0, 0), z_dir=(0, -1, 0))):
        with BuildLine():
            ThreePointArc((38.470009909, -33.482209271), (41.818862185, -29.192169593), (44.691496308, -24.569699993))
            Line((44.691496308, -24.569699993), (38.966789918, -21.422472216))
            ThreePointArc((38.966789918, -21.422472216), (34.921838684, -21.485997557), (32.917480236, -25))
            Line((32.917480236, -25), (32.917480236, -29.196566492))
            Line((32.917480236, -29.196566492), (38.470009909, -33.482209271))
        make_face()
        with Locations(Location((37, -25, 0), (0, 0, 90))):
            Circle(SKETCH_9_R, mode=Mode.SUBTRACT)
    extrude(amount=EXTRUDE_6_DEPTH)

    # Уклон3: read off the stored shape, not the designer's step
    # Уклон3 outline → Уклон3 (cut)
    with BuildSketch(Plane(origin=(0, 0, 0), x_dir=(0.6110056787485416, 0, 0.7916262126389156), z_dir=(0.7916262126389156, 0, -0.611005678748542)).offset(DRAFT_START)):
        Polygon((-9, 0.85), (3, 12.85), (-9, 12.85), align=None)
    extrude(amount=DRAFT_3_DEPTH, mode=Mode.SUBTRACT)

    # Уклон5: read off the stored shape, not the designer's step
    # Уклон5 outline → Уклон5 (cut)
    with BuildSketch(Plane(origin=(0, 0, 0), x_dir=(0.6110056787485442, 0, -0.7916262126389138), z_dir=(0.7916262126389138, 0, 0.6110056787485444)).offset(DRAFT_START_2)):
        Polygon((9, -0.85), (-3, -12.85), (9, -12.85), align=None)
    extrude(amount=DRAFT_5_DEPTH, mode=Mode.SUBTRACT)

    # Эскиз10 → Вырез-Вытянуть3 (cut, through all)
    with BuildSketch(Plane(origin=(0, -2.85, 0), x_dir=(1, 0, 0), z_dir=(0, 1, 0))):
        with Locations(Location((-37, -25, 0), (0, 0, 270))):
            Circle(SKETCH_10_R)
        with Locations(Location((37, -25, 0), (0, 0, 52.337744339))):
            Circle(SKETCH_10_R)
    extrude(amount=-CUT_EXTRUDE_3_DEPTH, mode=Mode.SUBTRACT)


solid = part_1.part
